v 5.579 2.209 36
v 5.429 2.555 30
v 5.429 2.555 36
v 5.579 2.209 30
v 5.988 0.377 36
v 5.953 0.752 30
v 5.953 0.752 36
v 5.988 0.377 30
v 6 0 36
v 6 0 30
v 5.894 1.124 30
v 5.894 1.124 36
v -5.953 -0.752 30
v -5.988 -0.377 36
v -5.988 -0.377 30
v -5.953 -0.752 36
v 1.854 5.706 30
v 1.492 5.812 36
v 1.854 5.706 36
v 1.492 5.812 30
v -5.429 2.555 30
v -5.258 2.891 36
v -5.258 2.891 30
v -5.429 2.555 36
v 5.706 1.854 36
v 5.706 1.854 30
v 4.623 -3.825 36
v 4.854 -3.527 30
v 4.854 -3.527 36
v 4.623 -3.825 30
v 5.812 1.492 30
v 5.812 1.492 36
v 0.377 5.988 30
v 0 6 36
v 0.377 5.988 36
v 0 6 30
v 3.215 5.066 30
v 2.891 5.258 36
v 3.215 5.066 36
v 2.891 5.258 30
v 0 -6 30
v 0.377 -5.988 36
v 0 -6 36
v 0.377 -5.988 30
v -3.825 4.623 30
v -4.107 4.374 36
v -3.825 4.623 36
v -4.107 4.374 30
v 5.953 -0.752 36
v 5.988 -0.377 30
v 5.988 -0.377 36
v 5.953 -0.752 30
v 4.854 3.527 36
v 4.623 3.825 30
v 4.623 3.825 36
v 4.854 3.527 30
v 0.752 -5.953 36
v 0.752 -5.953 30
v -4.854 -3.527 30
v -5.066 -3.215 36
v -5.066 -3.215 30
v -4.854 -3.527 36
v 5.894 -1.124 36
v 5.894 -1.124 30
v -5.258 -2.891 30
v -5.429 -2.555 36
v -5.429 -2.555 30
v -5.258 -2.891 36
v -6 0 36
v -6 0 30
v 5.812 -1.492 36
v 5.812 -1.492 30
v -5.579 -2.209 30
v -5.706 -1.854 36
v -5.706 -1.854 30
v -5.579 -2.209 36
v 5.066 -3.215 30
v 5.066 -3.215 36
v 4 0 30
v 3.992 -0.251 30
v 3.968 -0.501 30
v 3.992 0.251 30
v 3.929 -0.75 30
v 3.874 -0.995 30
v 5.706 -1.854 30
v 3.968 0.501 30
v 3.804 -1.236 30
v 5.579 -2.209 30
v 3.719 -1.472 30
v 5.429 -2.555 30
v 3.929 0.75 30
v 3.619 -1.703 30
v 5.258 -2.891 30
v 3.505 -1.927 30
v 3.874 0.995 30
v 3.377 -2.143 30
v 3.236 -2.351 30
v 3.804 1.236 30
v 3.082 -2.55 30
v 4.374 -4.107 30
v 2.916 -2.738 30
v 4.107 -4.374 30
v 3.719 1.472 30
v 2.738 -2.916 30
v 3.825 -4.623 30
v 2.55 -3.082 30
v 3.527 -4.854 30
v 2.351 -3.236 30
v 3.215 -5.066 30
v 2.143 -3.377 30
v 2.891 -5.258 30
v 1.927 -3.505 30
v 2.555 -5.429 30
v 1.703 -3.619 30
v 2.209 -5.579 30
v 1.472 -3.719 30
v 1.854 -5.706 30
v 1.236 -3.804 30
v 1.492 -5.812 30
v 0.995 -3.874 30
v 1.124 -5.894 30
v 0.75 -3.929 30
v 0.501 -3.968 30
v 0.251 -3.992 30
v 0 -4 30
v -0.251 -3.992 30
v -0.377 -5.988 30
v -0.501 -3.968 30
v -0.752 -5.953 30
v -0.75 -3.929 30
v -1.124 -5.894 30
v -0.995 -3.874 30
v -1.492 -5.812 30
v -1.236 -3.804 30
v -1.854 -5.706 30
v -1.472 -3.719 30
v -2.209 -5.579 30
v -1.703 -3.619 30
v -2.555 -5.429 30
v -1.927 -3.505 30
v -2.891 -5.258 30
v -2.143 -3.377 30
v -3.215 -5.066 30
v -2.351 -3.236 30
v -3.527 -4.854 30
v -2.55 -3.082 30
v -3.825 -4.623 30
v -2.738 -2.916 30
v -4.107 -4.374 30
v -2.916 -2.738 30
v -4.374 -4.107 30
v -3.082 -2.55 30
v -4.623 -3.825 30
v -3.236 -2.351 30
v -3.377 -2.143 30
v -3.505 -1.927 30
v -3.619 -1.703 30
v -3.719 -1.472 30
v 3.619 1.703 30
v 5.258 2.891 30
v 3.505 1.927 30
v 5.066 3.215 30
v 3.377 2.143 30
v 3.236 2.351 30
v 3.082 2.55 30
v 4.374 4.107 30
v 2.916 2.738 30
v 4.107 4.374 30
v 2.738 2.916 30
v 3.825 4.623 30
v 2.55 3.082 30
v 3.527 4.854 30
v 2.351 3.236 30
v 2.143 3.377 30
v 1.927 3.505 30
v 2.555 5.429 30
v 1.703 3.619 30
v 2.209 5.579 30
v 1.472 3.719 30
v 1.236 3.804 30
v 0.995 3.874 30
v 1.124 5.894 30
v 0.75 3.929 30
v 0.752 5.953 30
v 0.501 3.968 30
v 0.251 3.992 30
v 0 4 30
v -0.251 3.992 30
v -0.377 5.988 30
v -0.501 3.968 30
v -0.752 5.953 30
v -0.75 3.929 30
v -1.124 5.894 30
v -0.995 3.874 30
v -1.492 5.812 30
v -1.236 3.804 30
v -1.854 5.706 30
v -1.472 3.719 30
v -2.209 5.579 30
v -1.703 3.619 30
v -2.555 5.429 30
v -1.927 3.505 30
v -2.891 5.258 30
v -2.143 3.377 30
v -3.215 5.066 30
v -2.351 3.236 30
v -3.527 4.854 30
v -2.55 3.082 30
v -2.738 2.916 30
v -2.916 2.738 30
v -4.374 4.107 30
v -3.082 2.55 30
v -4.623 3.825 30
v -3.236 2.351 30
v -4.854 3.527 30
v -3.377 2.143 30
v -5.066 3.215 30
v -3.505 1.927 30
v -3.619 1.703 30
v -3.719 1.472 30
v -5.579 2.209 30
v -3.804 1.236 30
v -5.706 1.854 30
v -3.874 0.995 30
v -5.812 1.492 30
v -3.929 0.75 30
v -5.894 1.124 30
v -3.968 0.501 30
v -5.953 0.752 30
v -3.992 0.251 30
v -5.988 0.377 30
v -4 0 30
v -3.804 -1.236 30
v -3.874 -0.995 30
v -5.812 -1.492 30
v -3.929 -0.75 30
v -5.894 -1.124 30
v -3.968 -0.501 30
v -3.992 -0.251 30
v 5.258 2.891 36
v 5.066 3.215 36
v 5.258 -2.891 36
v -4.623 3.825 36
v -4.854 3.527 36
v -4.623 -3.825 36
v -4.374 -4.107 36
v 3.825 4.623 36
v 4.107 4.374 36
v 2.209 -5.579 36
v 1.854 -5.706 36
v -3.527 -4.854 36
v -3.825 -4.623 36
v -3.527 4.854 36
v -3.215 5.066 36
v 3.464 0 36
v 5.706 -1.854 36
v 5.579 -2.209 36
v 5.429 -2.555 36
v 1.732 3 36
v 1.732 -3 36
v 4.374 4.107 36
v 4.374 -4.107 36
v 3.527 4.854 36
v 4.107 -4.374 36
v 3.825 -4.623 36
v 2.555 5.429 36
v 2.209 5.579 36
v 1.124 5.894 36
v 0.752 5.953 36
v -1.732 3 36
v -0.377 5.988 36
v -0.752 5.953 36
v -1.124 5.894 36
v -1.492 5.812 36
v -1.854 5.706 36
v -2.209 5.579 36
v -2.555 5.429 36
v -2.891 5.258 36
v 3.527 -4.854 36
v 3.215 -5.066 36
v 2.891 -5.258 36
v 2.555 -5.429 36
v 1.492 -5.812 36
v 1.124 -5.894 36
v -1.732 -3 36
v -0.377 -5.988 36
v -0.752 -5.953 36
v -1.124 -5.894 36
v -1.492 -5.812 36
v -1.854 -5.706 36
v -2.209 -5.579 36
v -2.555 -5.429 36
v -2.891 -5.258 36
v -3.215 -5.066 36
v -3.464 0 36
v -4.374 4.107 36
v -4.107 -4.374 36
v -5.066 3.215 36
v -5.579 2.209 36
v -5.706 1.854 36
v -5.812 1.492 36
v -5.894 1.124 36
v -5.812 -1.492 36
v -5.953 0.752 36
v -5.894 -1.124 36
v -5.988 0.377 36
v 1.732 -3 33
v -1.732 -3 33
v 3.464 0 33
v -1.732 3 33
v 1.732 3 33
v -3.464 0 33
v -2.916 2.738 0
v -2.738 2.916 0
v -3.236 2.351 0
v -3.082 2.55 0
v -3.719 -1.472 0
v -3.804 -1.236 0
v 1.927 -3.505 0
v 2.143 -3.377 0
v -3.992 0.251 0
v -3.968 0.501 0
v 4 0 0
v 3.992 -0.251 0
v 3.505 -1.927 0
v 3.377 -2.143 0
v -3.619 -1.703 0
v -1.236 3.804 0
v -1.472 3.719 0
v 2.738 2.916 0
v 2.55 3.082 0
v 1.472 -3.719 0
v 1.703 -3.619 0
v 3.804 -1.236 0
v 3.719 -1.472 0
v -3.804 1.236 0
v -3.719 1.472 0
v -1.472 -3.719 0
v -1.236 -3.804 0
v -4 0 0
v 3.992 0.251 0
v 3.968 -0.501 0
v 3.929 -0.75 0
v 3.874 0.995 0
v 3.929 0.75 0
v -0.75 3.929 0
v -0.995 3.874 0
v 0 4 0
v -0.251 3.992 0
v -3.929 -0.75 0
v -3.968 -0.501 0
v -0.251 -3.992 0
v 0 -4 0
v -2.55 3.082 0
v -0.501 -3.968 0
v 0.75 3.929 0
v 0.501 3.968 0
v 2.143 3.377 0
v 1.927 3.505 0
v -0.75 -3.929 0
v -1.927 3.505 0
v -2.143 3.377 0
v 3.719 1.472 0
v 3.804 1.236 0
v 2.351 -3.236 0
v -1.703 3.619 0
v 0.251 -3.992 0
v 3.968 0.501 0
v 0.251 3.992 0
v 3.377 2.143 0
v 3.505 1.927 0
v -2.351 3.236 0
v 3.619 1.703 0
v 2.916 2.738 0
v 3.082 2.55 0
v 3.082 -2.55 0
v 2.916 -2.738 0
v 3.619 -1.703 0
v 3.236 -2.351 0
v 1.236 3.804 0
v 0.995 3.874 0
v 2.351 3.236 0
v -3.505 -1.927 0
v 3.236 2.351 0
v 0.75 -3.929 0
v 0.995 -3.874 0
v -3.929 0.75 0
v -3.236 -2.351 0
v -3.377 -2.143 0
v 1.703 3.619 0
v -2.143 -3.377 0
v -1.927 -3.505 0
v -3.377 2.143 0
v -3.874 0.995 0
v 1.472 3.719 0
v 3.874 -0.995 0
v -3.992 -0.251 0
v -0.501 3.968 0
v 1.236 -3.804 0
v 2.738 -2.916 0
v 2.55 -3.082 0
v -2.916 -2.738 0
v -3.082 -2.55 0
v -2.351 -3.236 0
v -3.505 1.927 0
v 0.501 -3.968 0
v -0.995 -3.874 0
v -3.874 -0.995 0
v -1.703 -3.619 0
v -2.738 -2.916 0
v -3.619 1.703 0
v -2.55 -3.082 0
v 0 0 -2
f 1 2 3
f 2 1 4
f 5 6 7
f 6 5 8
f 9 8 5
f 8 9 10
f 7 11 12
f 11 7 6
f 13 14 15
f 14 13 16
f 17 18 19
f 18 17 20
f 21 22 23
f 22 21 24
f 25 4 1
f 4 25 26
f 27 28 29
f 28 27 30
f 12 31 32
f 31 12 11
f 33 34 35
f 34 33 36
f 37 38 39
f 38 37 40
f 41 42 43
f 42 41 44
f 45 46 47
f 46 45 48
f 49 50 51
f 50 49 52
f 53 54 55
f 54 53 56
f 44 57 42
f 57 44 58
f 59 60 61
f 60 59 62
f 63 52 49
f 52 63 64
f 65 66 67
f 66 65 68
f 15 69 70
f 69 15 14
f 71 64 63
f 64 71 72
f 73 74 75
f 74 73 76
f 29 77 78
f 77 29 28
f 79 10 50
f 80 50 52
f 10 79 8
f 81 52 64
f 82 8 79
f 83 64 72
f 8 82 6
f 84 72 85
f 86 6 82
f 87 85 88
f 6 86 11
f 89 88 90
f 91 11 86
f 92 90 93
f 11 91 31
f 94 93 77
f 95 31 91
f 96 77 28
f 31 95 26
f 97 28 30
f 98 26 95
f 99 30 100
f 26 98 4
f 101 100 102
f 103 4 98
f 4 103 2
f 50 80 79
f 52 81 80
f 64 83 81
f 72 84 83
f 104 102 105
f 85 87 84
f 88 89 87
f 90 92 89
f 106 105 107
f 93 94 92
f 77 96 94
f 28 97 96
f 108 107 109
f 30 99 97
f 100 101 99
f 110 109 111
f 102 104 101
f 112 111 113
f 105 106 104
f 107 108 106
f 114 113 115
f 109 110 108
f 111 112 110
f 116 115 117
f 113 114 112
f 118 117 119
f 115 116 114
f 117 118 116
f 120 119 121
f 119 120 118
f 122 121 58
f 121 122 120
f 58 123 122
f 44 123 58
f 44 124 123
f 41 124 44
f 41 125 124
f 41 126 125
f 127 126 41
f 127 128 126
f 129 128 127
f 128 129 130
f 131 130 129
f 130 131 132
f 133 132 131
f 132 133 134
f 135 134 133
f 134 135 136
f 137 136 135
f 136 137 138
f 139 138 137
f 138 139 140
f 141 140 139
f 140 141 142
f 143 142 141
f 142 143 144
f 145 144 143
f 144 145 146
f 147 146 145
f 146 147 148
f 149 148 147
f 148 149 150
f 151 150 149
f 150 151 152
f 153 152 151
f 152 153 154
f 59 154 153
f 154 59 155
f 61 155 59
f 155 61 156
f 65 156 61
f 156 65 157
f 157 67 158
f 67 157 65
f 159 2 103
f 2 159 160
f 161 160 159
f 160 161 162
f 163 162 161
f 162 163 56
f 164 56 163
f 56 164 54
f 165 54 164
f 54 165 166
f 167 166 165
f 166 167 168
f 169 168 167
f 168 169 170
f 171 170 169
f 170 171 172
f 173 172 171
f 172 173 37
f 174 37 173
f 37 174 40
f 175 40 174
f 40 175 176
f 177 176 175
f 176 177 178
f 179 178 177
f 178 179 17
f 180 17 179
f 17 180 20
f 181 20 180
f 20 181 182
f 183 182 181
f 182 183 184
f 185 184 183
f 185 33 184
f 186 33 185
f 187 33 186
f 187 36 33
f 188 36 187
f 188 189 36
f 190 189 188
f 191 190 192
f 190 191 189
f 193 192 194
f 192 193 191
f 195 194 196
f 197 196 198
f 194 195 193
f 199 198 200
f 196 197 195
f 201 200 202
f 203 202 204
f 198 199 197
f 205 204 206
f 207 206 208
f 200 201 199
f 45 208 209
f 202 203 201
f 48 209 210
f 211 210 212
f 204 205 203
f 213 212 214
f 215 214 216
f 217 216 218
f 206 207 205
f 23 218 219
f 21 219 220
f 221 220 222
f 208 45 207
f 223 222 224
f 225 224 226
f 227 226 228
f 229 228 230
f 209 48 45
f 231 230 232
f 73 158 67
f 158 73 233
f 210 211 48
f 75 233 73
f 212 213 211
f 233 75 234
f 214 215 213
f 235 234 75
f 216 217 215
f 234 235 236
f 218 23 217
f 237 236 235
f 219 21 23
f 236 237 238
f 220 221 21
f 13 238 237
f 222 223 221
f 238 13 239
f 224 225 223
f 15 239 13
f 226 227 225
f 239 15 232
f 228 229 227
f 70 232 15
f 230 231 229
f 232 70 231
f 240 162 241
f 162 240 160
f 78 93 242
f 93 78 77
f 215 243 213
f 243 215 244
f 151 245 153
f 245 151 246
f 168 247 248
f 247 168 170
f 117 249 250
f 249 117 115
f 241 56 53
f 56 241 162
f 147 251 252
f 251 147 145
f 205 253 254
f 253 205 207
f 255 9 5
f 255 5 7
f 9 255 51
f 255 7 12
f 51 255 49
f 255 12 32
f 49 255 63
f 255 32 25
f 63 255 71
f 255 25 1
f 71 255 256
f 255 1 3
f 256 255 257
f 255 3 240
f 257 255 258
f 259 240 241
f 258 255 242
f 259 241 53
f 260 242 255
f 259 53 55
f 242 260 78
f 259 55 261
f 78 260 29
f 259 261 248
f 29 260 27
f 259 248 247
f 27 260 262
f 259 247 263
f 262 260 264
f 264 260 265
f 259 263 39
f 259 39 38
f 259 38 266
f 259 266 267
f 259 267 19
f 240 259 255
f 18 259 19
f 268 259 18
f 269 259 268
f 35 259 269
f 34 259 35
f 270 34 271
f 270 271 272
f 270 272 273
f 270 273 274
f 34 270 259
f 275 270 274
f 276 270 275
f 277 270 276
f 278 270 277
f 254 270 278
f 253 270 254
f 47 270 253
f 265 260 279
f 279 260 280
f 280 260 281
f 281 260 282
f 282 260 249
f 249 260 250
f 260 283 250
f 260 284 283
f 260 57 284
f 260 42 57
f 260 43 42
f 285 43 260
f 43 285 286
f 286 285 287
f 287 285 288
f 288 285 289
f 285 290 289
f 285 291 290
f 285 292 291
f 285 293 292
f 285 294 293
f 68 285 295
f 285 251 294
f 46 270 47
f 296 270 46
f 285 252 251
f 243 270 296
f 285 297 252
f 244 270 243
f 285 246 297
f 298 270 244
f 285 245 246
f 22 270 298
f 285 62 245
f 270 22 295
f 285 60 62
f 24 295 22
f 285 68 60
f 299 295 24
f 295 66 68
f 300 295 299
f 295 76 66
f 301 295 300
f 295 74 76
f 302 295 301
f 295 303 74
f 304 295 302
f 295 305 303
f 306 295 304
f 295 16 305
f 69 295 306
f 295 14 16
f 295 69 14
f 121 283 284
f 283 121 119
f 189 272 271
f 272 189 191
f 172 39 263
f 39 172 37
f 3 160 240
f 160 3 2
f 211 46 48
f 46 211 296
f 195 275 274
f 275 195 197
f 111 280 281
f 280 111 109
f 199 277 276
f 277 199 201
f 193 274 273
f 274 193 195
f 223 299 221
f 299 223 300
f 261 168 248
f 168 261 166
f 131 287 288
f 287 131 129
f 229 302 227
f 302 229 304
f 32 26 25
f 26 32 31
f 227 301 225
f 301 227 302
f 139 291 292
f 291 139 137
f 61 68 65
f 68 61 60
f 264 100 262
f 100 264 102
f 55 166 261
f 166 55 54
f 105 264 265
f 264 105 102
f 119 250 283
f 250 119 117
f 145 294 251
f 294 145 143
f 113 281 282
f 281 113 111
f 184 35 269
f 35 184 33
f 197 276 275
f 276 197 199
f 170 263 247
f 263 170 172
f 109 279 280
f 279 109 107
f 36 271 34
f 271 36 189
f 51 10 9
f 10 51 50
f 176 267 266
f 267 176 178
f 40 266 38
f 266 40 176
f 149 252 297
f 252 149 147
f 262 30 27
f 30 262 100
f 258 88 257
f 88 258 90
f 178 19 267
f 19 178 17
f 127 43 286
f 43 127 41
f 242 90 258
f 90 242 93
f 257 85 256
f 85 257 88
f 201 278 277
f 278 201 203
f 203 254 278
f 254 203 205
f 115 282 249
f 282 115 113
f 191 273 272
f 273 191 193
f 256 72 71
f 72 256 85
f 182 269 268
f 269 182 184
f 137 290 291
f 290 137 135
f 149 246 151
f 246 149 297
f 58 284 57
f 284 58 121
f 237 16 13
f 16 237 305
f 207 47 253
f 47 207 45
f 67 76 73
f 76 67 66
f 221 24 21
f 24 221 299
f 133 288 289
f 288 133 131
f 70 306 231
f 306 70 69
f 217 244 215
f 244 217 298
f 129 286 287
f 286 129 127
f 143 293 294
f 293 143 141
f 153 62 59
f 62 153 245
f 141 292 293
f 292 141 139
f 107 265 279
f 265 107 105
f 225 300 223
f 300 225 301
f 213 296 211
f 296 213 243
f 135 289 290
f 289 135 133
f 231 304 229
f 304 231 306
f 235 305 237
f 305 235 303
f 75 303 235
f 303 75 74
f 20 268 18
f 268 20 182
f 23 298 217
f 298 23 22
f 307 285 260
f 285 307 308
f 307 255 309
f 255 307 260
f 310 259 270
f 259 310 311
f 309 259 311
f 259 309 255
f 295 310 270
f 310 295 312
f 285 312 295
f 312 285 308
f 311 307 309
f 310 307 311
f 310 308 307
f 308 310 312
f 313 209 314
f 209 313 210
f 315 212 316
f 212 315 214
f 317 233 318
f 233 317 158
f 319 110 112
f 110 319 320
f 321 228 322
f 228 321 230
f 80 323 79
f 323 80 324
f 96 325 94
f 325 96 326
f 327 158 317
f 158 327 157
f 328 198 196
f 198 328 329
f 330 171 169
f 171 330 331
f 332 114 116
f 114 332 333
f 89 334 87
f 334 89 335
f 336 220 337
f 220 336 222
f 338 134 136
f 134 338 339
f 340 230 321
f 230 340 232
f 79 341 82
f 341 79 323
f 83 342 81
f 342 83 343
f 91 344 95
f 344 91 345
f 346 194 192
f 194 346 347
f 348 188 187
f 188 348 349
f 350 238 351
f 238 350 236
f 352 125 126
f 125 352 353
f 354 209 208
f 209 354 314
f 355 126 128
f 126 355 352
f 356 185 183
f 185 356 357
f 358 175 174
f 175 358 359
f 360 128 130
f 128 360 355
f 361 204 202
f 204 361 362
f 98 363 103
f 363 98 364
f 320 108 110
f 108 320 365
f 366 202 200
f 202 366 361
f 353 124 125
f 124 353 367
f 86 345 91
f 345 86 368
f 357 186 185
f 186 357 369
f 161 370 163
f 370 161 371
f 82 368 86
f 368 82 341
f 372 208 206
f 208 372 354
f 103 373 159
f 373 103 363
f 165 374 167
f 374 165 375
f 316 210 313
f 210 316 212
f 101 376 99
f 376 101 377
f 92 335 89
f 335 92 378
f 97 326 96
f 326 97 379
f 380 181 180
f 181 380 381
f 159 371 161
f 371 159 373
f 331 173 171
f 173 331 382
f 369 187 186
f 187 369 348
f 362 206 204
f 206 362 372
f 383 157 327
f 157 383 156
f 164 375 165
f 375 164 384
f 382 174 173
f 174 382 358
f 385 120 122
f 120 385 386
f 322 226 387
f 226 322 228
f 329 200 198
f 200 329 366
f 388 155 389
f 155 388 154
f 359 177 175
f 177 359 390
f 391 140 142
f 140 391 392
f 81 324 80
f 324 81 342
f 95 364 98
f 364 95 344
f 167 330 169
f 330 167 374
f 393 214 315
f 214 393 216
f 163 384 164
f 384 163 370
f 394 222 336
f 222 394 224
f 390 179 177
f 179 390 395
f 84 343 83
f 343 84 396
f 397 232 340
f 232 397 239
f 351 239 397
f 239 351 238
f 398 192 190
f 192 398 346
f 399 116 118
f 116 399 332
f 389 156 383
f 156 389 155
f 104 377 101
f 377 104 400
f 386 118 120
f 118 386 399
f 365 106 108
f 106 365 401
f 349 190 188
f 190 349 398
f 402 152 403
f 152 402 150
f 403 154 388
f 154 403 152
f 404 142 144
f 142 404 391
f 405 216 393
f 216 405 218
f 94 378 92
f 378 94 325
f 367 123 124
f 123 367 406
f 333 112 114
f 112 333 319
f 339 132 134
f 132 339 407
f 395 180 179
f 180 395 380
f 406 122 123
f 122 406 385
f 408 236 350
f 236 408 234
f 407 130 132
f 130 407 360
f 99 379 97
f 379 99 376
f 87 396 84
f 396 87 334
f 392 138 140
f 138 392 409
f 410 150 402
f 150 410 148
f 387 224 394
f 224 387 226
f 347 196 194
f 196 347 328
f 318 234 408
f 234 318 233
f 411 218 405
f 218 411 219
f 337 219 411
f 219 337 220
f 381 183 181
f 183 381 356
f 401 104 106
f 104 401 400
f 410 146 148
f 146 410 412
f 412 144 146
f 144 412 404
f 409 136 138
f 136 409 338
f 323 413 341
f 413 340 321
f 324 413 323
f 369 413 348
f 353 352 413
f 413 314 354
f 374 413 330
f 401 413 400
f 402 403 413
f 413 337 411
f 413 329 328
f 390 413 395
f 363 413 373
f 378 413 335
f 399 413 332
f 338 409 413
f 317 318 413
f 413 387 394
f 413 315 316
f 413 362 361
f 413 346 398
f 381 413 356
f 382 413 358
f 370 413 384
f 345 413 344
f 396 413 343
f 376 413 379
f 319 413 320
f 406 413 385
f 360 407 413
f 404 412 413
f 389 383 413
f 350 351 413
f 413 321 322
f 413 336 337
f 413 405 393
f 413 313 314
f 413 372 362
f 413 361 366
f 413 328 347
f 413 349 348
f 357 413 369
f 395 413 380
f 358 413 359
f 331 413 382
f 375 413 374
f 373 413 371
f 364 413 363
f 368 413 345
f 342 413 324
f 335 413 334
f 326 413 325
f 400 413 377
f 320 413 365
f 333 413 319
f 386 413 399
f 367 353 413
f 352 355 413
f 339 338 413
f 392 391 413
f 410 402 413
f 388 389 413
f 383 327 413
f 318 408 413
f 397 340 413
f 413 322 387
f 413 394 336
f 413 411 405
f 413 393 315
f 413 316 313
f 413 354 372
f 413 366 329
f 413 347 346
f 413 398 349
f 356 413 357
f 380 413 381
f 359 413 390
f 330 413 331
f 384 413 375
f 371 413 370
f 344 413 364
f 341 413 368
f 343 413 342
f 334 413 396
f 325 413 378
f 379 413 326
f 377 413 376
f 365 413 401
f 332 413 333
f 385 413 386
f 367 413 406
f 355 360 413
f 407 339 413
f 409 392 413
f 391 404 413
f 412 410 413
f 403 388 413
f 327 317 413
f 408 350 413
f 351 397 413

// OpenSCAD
// Parameters
bolt_length = 30;
bolt_radius = 4;
head_height = 6;
head_radius = 6;
hex_radius = 3; // across flats
hex_depth = 3;

// Main bolt body
module bolt_body() {
    cylinder(h = bolt_length, r = bolt_radius, $fn=100);
}

// Bolt head with hex socket
module bolt_head() {
    difference() {
        cylinder(h = head_height, r = head_radius, $fn=100);
        translate([0, 0, head_height - hex_depth])
            rotate([0, 0, 0])
                hex_socket(hex_radius, hex_depth);
    }
}

// Hex socket (recessed)
module hex_socket(radius, depth) {
    rotate([0, 0, 0])
        cylinder(h = depth, r=radius / cos(180/6), $fn=6);
}

// Chamfered bottom
module chamfered_tip() {
    translate([0, 0, -2])
        cylinder(h = 2, r1 = 0, r2 = bolt_radius, $fn=100);
}

// Full bolt
module bolt() {
    union() {
        bolt_body();
        translate([0, 0, bolt_length])
            bolt_head();
        chamfered_tip();
    }
}

// Render the bolt
bolt();
